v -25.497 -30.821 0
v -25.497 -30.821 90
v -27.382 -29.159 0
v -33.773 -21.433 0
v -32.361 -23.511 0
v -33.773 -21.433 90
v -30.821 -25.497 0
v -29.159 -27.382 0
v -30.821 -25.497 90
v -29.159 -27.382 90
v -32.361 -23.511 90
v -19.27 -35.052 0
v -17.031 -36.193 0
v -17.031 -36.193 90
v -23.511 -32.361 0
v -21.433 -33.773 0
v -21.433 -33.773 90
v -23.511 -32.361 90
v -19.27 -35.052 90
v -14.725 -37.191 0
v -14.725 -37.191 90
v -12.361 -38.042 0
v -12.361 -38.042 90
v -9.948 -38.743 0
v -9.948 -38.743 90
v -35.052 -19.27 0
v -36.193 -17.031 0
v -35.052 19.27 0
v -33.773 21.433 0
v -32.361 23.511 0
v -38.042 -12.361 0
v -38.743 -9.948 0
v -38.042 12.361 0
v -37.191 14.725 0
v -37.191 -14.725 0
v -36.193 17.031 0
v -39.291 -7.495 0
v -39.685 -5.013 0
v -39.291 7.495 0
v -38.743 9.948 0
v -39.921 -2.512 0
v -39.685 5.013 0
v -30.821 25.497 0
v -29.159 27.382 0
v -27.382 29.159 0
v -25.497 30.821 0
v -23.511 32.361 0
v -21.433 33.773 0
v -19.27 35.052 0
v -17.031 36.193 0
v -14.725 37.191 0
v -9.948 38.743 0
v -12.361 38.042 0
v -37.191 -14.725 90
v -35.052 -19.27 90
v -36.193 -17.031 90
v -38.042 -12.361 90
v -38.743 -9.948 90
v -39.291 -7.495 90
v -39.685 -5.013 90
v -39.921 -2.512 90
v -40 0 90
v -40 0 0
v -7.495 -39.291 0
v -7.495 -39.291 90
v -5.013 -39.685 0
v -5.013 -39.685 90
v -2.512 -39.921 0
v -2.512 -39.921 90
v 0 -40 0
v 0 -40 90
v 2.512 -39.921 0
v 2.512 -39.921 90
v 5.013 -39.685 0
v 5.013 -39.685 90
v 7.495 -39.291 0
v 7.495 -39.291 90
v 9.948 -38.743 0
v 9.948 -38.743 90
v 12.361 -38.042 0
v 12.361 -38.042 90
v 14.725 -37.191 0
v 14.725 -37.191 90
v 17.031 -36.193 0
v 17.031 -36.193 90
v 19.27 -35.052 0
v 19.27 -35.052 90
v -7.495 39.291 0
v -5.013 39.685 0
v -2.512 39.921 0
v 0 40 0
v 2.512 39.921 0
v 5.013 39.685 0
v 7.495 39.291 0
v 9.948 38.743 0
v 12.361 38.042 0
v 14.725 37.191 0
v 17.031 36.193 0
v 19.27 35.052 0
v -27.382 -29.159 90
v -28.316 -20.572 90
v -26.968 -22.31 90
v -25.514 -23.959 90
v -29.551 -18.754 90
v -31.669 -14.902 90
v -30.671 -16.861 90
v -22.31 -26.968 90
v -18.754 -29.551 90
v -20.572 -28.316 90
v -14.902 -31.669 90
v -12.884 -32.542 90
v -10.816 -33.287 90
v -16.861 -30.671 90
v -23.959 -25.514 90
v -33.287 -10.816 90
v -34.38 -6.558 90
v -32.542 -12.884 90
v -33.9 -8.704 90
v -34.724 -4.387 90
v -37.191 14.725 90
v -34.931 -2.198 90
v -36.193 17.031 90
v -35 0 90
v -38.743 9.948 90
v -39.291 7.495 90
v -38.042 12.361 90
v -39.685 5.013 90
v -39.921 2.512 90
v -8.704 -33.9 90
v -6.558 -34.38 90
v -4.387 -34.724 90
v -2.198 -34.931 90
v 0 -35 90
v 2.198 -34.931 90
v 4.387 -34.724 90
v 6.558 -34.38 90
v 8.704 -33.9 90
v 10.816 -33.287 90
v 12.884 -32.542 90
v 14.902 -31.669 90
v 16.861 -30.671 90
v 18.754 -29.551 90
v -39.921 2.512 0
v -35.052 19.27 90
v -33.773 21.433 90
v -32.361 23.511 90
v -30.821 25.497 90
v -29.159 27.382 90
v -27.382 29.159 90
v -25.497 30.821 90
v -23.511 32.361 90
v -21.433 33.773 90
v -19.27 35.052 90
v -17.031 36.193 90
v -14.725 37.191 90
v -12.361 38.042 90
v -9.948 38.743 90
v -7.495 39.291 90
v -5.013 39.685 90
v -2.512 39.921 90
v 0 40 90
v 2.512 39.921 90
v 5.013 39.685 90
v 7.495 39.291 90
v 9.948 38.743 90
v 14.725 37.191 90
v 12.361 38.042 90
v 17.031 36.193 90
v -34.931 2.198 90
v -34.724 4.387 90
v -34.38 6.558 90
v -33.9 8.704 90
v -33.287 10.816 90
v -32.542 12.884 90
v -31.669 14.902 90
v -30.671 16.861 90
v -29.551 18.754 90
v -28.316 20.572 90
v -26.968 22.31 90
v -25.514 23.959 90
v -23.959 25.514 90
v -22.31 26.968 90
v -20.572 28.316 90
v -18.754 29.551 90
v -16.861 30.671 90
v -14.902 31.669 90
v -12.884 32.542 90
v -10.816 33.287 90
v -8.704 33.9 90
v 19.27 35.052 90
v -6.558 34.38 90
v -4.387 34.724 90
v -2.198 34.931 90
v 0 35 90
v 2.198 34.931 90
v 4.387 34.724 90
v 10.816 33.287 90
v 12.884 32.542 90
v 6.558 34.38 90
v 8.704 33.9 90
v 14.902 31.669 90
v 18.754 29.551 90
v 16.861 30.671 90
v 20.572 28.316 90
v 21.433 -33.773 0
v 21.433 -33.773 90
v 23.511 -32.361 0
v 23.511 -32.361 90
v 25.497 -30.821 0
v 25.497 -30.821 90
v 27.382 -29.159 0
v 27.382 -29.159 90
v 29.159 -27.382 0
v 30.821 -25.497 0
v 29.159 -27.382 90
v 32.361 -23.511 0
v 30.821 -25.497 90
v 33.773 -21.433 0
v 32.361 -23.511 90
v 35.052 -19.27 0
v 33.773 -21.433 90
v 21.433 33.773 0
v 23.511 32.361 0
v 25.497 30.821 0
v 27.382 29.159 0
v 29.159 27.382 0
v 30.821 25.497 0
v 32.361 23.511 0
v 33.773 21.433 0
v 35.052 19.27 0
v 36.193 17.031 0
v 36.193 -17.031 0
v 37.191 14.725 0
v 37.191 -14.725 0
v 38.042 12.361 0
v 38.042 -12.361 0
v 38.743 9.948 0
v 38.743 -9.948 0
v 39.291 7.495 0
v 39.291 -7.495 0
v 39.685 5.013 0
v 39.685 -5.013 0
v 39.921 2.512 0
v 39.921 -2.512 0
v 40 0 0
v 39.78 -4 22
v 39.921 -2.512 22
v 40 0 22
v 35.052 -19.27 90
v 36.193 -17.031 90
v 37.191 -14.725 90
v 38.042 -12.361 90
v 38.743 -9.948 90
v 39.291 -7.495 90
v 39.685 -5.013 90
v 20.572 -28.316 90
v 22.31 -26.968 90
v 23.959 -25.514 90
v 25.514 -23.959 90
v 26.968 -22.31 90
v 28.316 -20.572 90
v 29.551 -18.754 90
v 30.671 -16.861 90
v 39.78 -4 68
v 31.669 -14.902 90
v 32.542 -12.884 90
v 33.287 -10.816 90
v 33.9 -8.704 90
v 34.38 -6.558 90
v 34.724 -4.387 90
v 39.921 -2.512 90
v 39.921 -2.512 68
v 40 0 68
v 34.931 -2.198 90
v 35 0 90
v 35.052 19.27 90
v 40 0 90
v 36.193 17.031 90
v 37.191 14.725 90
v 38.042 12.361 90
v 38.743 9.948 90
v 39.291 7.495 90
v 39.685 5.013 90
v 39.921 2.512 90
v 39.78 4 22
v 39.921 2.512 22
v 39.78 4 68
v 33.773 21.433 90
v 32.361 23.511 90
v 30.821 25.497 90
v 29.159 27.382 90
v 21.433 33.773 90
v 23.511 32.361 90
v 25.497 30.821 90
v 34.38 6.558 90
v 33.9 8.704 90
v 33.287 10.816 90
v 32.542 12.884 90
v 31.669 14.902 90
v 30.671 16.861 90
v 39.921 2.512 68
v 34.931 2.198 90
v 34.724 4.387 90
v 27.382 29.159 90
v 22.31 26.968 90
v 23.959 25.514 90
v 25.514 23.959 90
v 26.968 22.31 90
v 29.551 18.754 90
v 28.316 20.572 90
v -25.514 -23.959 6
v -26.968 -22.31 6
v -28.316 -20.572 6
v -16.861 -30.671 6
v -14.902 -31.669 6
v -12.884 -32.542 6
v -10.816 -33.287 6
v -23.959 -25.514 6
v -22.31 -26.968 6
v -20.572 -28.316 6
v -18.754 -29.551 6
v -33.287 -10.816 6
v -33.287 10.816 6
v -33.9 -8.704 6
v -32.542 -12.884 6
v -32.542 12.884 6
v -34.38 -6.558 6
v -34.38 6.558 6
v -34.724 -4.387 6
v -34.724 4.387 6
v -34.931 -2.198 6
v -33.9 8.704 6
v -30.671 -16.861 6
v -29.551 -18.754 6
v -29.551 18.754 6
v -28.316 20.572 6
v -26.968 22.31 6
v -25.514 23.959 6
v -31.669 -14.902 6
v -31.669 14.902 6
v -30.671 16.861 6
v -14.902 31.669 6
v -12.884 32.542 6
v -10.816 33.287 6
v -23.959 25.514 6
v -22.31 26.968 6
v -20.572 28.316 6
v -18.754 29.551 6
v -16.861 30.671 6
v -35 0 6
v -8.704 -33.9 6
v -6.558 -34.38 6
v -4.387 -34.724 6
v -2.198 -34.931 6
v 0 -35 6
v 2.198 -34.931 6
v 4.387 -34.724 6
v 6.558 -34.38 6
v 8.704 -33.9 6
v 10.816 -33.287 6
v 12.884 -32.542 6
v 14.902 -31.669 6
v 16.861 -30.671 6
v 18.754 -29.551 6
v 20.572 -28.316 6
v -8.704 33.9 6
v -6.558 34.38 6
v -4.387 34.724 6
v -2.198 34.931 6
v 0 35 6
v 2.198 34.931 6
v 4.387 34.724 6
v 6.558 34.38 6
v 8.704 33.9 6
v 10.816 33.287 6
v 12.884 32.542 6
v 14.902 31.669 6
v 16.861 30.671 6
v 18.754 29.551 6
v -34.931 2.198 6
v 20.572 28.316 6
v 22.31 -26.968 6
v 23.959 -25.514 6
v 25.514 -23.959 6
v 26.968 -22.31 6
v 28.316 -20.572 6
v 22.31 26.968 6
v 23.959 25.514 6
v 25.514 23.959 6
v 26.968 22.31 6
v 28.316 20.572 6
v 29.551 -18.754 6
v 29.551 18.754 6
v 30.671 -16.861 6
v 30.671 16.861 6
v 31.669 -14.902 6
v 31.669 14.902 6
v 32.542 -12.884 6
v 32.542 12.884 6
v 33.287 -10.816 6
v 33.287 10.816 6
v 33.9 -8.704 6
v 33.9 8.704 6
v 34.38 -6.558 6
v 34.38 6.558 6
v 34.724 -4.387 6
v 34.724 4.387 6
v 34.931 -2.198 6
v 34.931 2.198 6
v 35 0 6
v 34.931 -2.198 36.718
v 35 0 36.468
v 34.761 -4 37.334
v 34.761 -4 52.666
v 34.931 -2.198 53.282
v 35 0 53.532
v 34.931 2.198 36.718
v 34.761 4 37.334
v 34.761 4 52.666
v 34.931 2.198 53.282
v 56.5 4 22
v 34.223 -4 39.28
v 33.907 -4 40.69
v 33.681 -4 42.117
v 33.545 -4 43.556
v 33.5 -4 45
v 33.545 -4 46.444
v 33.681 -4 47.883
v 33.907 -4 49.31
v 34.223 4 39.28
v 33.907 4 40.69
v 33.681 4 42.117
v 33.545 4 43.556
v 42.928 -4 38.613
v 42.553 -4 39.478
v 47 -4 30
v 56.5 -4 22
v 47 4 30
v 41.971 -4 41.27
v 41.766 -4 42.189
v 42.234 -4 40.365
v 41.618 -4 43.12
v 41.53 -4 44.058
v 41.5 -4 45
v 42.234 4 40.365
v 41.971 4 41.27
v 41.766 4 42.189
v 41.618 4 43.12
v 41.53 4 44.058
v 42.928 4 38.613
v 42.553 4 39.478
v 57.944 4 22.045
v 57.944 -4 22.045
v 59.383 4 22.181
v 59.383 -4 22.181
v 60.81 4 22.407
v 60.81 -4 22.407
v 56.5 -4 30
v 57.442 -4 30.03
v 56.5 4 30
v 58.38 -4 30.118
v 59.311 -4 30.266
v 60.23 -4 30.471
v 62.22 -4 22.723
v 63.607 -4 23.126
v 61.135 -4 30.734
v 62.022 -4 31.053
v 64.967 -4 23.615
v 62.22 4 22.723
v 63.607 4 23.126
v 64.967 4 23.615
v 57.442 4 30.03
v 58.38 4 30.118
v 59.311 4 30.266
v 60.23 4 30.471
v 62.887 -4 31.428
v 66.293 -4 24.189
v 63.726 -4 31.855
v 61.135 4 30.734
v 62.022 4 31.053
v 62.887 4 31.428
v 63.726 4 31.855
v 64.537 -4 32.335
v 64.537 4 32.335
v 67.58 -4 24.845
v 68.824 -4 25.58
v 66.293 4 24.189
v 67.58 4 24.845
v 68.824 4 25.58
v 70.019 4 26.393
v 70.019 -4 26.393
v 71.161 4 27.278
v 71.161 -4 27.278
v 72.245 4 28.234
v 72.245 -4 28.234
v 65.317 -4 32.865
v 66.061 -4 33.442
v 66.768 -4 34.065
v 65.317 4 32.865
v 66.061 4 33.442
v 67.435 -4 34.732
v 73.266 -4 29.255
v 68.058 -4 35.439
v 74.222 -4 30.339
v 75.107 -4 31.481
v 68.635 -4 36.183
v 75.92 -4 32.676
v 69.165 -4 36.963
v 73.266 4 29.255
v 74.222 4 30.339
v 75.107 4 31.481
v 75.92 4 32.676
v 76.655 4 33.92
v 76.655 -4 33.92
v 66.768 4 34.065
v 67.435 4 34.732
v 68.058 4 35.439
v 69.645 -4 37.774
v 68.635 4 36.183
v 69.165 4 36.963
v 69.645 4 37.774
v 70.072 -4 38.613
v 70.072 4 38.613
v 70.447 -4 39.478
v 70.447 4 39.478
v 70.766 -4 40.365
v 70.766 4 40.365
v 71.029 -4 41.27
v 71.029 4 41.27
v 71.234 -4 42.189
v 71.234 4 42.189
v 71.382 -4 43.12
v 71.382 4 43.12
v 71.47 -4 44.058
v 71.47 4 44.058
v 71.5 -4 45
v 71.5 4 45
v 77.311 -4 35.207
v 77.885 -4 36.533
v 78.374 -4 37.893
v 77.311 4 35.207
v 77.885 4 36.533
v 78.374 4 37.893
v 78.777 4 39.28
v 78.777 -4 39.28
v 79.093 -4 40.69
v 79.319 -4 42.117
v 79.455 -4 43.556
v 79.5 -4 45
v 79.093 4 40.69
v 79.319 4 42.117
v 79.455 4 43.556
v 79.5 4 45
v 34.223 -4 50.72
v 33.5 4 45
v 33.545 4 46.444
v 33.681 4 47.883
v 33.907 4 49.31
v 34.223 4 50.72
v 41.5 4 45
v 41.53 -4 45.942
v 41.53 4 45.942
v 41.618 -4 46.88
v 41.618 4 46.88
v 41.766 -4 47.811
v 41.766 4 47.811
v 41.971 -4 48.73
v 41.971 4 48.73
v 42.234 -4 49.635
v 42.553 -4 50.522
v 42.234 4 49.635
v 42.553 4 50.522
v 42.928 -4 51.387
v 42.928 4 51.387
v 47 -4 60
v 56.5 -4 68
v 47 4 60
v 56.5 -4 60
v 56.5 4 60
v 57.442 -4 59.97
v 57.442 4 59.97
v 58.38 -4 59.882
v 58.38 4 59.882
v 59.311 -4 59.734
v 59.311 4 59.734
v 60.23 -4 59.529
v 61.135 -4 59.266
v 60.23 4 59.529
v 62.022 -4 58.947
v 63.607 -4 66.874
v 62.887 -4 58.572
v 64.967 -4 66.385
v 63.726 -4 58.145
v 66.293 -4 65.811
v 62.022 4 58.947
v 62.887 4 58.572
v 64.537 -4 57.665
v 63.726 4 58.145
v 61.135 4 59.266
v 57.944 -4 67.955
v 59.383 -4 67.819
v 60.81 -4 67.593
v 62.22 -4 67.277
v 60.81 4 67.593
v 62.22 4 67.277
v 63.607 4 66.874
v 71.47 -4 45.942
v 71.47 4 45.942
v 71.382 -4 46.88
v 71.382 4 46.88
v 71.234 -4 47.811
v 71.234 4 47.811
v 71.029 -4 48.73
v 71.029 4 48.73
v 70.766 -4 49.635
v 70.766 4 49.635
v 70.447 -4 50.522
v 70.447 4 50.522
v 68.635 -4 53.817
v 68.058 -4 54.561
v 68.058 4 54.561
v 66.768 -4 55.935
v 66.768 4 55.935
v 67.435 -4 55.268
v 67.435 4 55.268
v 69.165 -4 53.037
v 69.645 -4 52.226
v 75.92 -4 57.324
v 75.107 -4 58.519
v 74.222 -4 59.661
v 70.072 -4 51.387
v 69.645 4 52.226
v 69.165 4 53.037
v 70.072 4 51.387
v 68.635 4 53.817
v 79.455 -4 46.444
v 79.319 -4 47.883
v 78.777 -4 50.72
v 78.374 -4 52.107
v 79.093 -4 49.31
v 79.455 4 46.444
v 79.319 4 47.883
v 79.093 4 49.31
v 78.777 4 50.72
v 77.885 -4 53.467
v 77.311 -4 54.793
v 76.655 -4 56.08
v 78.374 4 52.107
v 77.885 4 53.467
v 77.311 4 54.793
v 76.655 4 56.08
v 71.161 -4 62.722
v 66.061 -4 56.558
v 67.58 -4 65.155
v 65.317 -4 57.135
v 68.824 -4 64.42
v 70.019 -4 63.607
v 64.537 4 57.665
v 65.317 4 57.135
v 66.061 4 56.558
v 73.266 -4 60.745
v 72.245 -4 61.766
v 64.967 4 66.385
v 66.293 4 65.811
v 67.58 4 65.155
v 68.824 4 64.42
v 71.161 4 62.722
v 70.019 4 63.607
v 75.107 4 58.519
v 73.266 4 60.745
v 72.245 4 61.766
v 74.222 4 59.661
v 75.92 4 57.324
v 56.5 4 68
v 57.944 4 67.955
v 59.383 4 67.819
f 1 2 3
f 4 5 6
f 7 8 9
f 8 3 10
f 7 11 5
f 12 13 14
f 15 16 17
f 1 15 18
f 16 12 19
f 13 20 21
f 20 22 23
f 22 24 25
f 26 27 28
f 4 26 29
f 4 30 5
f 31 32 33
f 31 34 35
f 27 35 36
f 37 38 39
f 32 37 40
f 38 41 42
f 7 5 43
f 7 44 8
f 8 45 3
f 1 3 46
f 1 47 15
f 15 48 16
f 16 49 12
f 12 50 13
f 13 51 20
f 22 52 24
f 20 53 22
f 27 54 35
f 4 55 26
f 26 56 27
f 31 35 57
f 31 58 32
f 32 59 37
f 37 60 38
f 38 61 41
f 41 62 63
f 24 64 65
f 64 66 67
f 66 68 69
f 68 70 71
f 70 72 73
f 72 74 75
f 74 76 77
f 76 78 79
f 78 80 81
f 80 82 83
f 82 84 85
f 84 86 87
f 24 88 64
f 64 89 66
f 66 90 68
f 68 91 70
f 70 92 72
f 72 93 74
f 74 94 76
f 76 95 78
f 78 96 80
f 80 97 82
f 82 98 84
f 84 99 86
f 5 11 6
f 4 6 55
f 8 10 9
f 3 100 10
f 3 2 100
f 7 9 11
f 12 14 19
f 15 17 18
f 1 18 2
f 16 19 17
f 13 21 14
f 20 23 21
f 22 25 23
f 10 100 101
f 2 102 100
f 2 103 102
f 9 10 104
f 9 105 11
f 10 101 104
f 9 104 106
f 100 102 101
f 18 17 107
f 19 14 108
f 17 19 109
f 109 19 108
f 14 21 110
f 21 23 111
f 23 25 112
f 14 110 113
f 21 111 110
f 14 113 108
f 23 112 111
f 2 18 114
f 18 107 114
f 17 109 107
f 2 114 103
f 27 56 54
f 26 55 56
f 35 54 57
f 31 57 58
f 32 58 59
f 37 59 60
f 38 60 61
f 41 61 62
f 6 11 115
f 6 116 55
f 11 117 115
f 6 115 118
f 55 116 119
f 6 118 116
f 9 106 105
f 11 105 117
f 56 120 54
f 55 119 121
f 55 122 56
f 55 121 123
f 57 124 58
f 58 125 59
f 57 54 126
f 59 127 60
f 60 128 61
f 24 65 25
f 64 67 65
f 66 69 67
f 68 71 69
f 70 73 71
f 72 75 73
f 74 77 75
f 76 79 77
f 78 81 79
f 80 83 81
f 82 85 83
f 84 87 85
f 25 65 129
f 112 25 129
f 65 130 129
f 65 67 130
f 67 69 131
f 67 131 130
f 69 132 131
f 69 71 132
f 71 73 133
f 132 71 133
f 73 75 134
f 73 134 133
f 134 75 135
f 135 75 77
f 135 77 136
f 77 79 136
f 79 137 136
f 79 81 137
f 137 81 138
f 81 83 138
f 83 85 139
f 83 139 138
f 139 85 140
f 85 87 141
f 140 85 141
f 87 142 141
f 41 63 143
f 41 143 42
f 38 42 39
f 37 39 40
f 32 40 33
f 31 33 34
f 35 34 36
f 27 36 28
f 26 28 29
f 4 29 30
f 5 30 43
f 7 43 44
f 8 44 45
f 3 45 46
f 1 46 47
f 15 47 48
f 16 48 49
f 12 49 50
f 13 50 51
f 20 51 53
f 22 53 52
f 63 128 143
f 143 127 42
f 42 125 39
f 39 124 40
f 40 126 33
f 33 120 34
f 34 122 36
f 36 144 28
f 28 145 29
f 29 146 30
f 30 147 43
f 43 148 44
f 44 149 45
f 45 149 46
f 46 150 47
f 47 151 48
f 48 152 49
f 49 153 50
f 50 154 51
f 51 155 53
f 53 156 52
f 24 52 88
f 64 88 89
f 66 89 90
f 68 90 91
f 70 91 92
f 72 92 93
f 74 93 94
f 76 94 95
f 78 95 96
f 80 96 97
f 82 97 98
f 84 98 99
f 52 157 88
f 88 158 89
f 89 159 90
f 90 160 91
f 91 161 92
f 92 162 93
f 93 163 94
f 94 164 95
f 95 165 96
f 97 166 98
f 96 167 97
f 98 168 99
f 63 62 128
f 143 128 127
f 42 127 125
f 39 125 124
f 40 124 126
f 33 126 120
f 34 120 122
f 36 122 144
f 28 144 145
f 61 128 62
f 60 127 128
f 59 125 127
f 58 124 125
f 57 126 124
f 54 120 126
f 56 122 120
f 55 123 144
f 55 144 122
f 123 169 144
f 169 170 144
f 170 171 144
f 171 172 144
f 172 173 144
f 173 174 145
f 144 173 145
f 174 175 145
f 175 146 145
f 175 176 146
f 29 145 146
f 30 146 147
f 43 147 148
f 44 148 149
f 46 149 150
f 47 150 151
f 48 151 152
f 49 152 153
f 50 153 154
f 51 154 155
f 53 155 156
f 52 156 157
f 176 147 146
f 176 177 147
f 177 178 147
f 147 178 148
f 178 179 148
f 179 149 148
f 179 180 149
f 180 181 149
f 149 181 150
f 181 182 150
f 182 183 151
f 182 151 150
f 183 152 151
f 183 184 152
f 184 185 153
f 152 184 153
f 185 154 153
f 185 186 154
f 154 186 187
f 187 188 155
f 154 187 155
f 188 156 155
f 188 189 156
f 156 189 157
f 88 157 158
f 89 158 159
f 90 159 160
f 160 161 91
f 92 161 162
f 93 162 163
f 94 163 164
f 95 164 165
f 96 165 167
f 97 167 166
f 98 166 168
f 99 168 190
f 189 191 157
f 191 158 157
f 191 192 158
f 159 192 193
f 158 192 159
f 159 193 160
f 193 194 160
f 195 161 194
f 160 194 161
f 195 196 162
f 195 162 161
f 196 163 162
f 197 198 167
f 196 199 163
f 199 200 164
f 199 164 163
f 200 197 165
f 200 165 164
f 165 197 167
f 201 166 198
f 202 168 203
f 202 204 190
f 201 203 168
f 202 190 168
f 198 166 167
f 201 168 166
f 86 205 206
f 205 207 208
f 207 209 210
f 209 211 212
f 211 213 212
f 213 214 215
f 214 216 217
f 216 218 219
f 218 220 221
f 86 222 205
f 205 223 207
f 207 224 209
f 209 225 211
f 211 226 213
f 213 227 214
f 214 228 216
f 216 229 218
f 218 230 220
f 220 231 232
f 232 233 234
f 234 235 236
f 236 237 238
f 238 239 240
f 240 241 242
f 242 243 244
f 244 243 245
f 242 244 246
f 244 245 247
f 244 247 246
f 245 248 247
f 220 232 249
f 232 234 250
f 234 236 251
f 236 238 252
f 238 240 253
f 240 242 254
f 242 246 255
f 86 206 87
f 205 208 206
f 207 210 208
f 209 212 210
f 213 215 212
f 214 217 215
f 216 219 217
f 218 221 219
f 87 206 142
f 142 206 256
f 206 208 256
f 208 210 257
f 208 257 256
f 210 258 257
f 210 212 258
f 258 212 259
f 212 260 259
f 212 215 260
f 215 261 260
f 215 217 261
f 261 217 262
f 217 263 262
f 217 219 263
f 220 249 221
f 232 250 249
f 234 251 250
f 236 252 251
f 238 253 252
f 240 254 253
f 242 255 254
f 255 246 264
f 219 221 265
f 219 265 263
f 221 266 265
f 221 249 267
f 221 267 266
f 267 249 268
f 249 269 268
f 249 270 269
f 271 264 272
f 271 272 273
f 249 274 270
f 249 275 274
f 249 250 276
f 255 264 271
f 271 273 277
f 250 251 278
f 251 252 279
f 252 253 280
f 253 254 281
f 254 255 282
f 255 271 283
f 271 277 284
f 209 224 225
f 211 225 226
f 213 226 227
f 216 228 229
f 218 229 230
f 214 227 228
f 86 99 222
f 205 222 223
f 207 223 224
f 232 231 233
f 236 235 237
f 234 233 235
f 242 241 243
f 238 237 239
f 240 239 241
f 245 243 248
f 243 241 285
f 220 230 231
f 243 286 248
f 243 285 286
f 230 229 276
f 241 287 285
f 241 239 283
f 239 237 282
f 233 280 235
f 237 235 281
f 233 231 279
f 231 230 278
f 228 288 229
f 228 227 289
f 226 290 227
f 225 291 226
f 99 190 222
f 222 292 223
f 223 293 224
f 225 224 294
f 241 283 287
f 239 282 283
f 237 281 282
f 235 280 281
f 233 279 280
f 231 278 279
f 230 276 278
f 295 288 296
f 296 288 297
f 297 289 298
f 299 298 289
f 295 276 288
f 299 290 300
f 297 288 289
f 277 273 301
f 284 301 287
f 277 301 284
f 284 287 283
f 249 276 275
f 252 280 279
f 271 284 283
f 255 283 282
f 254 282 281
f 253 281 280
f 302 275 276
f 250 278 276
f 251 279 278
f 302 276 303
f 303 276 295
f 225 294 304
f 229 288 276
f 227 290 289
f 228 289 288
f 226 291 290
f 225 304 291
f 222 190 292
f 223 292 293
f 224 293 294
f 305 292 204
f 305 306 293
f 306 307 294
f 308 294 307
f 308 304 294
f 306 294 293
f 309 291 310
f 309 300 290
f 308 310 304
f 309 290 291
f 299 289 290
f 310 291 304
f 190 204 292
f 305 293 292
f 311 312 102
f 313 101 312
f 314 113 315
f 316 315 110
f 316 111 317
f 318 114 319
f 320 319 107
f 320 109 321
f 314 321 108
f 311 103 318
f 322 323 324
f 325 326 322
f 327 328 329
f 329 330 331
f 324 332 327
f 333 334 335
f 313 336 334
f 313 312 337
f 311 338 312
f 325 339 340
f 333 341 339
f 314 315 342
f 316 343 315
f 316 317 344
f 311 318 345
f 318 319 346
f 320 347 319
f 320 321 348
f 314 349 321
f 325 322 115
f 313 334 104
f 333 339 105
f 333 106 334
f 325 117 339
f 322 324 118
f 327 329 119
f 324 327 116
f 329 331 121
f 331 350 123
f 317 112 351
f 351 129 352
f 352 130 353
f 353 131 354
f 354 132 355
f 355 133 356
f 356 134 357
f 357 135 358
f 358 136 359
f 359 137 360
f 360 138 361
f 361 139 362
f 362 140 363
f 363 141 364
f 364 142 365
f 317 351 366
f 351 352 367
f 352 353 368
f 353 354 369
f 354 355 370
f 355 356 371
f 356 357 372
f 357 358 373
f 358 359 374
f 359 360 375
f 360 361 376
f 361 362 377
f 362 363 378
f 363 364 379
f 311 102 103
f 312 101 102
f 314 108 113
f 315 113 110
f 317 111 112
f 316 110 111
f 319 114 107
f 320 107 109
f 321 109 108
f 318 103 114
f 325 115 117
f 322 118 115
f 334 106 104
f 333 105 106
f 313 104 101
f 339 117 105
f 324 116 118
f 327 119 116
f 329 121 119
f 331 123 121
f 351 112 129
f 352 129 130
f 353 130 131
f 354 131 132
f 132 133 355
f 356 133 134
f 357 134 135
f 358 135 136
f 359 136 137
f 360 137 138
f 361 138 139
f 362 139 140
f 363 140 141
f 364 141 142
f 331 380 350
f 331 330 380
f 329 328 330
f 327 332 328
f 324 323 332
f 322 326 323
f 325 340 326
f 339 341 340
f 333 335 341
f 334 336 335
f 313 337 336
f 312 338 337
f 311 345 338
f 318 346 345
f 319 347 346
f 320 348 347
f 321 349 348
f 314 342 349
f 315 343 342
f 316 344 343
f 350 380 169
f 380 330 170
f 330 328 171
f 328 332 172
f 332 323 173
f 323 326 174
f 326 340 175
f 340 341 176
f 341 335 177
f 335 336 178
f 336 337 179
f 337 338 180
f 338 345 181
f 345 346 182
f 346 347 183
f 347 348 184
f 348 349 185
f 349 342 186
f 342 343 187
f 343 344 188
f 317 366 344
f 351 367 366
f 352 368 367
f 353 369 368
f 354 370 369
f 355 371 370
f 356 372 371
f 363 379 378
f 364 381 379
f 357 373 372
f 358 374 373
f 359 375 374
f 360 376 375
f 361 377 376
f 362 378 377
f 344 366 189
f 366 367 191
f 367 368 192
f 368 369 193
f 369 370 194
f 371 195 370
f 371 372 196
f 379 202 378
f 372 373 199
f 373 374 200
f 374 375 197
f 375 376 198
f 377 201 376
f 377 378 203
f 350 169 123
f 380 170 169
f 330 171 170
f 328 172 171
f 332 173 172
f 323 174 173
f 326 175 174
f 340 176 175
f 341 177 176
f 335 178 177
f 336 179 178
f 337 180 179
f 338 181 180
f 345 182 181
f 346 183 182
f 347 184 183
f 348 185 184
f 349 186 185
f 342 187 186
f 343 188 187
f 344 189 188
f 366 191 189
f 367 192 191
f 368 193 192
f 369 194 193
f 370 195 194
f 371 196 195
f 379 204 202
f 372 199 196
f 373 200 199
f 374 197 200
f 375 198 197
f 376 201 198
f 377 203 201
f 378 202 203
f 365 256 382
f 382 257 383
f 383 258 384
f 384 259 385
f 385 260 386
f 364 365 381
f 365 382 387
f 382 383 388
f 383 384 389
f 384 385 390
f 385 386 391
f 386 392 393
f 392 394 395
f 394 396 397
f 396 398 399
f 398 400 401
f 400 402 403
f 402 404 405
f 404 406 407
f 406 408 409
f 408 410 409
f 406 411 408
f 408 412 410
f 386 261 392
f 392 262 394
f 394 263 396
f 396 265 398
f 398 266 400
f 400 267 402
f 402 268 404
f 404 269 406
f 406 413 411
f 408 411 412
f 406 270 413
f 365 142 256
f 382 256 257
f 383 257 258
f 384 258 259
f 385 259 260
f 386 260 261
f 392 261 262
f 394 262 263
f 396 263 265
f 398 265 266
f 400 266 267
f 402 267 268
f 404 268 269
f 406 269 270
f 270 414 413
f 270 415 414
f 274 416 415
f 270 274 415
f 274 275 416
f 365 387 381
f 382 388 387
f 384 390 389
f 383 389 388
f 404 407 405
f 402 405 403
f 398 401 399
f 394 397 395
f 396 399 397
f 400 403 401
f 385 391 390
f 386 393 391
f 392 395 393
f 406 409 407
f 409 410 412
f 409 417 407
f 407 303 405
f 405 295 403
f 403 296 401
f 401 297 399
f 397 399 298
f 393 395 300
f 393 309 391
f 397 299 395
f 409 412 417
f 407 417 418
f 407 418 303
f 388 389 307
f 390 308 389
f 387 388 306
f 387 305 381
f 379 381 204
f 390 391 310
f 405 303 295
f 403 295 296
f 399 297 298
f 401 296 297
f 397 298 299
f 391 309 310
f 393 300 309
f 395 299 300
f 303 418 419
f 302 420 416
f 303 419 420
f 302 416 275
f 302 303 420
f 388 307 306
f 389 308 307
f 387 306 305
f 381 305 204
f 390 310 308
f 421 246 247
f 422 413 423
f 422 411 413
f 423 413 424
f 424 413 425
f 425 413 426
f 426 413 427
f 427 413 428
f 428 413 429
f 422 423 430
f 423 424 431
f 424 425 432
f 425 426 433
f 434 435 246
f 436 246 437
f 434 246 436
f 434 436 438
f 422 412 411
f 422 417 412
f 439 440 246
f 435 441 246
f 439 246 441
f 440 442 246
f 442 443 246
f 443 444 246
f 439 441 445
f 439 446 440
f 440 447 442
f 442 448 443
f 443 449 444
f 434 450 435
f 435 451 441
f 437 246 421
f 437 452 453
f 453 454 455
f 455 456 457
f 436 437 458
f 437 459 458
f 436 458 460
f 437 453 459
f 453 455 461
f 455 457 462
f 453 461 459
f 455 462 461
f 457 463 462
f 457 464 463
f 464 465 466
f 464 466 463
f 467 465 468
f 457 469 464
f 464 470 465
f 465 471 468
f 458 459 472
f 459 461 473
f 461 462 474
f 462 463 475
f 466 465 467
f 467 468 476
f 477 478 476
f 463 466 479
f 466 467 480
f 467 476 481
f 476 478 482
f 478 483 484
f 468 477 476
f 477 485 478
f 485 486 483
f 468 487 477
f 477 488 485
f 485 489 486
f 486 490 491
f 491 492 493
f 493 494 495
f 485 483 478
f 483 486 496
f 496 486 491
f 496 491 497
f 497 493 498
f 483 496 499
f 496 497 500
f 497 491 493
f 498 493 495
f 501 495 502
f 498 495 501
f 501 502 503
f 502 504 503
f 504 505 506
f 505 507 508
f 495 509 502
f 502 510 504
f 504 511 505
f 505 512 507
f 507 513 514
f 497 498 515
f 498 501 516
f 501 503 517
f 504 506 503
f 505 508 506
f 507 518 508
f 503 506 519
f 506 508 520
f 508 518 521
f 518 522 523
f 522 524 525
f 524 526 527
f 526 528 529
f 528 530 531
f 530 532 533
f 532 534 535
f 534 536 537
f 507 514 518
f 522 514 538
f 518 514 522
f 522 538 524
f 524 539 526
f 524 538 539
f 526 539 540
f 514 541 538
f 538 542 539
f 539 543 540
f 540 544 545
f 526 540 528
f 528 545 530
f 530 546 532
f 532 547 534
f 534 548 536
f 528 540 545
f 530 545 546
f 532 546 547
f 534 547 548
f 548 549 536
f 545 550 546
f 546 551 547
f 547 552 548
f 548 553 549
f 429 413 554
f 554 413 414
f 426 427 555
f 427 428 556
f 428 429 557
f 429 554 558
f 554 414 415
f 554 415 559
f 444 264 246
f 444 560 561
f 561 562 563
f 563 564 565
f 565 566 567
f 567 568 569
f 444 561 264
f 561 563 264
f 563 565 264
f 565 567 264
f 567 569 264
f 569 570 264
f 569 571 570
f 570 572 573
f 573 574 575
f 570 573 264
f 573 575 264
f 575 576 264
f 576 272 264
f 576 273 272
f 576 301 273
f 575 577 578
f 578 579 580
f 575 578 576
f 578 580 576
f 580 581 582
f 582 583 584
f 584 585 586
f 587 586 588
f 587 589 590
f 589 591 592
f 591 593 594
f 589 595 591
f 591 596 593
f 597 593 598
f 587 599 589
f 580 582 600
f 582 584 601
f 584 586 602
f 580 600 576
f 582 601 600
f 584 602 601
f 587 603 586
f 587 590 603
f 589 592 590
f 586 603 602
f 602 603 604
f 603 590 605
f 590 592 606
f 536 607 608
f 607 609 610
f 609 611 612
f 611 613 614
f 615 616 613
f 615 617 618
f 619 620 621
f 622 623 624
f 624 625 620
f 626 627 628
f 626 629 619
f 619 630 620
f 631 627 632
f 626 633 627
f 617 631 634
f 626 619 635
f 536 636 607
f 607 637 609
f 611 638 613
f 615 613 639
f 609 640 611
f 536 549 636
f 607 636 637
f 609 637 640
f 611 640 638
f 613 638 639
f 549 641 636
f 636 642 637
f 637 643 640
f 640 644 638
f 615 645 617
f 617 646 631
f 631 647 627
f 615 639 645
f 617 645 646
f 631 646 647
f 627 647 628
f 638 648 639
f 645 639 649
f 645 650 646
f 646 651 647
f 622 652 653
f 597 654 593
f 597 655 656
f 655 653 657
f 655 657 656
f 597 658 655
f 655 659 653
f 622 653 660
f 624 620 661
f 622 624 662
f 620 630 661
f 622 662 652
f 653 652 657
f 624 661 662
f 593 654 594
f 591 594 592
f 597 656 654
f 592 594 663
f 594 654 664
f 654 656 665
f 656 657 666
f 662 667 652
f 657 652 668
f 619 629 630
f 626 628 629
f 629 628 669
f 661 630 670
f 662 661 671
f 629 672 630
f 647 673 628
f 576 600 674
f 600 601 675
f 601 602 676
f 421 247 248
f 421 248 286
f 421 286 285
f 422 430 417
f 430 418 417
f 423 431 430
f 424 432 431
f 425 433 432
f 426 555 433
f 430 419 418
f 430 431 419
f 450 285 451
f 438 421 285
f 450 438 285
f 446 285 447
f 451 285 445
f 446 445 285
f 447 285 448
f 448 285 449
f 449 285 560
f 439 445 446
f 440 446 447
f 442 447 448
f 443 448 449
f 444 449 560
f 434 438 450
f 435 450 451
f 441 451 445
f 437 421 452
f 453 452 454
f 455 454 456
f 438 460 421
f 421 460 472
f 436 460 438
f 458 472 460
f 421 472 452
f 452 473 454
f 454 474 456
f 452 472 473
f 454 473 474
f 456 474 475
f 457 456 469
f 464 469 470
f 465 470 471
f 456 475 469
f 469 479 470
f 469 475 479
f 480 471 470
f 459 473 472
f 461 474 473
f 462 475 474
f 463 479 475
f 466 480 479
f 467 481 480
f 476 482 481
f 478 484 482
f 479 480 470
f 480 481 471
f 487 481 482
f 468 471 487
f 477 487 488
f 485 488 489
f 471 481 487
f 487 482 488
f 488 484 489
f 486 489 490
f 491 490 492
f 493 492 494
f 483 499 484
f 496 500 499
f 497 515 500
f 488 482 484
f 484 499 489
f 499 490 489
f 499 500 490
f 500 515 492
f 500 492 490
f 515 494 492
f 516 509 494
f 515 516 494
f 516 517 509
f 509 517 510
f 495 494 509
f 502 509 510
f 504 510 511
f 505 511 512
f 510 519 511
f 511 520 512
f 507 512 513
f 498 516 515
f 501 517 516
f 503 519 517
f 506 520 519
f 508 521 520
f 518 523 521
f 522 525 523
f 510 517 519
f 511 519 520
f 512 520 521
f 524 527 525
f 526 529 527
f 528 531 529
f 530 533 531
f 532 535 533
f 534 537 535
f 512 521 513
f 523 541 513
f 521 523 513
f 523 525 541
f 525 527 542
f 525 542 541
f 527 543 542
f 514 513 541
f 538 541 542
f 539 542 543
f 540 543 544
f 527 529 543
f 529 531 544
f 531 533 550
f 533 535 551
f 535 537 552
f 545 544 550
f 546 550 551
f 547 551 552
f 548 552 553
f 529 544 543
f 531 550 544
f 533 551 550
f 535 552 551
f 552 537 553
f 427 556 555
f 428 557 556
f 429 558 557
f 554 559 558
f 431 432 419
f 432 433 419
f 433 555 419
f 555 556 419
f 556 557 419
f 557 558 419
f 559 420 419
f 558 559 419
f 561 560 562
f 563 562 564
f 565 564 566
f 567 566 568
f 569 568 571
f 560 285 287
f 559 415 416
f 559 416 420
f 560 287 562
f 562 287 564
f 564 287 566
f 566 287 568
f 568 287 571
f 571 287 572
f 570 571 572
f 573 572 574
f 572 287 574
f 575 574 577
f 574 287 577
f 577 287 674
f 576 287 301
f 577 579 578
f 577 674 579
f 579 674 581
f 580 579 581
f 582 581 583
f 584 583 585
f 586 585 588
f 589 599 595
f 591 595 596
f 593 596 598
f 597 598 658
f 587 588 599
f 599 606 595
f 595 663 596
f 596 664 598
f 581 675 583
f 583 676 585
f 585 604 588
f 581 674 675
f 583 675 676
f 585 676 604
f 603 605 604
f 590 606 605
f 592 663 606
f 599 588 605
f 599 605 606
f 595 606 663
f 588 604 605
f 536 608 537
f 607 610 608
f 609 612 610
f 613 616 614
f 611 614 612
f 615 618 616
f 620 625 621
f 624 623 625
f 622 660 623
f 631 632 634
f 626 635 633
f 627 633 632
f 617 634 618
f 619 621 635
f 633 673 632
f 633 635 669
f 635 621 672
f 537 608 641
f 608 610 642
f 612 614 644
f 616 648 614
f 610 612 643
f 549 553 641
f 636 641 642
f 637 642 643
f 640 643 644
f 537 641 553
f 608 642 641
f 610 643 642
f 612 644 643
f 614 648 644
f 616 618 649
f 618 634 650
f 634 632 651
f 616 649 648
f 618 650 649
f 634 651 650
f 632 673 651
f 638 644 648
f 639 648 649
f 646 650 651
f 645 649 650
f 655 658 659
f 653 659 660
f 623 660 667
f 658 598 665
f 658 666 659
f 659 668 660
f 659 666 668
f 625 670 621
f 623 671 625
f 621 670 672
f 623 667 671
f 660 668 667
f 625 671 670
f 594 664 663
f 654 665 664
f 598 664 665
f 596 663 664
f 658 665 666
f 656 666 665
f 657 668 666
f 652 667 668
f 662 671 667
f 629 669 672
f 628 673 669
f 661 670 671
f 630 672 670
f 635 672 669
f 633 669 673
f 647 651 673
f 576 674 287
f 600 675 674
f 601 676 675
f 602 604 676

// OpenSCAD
// マグカップ
$fn = 100;

// パラメータ
outer_d = 80;       // 外径
inner_d = 70;       // 内径
height = 90;        // 高さ
bottom_t = 6;       // 底厚
wall_t = (outer_d - inner_d) / 2;  // 肉厚 5mm

// 取手のパラメータ
handle_inner_h = 30;   // 取手内側の高さ
handle_inner_w = 25;   // 取手内側の幅
handle_thickness = 8;  // 取手の太さ(断面の厚み)

module mug_body() {
    difference() {
        cylinder(d = outer_d, h = height);
        translate([0, 0, bottom_t])
            cylinder(d = inner_d, h = height - bottom_t + 1);
    }
}

module handle() {
    // D字形取手:外側が半円、本体側が直線
    // 取手の中心はマグ高さの中央
    handle_outer_h = handle_inner_h + 2 * handle_thickness;
    handle_outer_w = handle_inner_w + handle_thickness;
    
    translate([outer_d/2 - 1, 0, height/2])
        rotate([90, 0, 90])
            linear_extrude(height = handle_outer_w + 1)
                difference() {
                    // 外形:D字(半円+直線で閉じた形)
                    union() {
                        // 上下の長方形を含めた外形
                        square([handle_outer_h, handle_outer_h/2 + 1], center = false);
                        translate([0, 0])
                            square([handle_outer_h, 1], center = false);
                        // 半円部分は外側に
                        translate([handle_outer_h/2, 0])
                            scale([1, 1])
                                difference() {
                                    union() {
                                        translate([-handle_outer_h/2, 0])
                                            square([handle_outer_h, handle_outer_h/2]);
                                    }
                                }
                    }
                }
}

// よりシンプルで確実な取手の実装
module handle_simple() {
    handle_outer_h = handle_inner_h + 2 * handle_thickness;
    
    translate([0, 0, height/2])
        rotate([90, 0, 0])
            linear_extrude(height = handle_thickness, center = true)
                difference() {
                    // 外形:本体側が直線、外側が半円のD字
                    hull() {
                        // 本体側の長方形
                        translate([outer_d/2 - 1, -handle_outer_h/2])
                            square([1, handle_outer_h]);
                        // 外側の半円(D字の丸い部分)
                        translate([outer_d/2 + handle_inner_w/2 + handle_thickness/2, 0])
                            circle(d = handle_outer_h);
                    }
                    // 内側の空間(指が入る部分)
                    hull() {
                        translate([outer_d/2 + handle_thickness - 1, -handle_inner_h/2])
                            square([1, handle_inner_h]);
                        translate([outer_d/2 + handle_inner_w/2 + handle_thickness/2, 0])
                            circle(d = handle_inner_h);
                    }
                }
}

// 全体の組み立て
union() {
    mug_body();
    handle_simple();
}
